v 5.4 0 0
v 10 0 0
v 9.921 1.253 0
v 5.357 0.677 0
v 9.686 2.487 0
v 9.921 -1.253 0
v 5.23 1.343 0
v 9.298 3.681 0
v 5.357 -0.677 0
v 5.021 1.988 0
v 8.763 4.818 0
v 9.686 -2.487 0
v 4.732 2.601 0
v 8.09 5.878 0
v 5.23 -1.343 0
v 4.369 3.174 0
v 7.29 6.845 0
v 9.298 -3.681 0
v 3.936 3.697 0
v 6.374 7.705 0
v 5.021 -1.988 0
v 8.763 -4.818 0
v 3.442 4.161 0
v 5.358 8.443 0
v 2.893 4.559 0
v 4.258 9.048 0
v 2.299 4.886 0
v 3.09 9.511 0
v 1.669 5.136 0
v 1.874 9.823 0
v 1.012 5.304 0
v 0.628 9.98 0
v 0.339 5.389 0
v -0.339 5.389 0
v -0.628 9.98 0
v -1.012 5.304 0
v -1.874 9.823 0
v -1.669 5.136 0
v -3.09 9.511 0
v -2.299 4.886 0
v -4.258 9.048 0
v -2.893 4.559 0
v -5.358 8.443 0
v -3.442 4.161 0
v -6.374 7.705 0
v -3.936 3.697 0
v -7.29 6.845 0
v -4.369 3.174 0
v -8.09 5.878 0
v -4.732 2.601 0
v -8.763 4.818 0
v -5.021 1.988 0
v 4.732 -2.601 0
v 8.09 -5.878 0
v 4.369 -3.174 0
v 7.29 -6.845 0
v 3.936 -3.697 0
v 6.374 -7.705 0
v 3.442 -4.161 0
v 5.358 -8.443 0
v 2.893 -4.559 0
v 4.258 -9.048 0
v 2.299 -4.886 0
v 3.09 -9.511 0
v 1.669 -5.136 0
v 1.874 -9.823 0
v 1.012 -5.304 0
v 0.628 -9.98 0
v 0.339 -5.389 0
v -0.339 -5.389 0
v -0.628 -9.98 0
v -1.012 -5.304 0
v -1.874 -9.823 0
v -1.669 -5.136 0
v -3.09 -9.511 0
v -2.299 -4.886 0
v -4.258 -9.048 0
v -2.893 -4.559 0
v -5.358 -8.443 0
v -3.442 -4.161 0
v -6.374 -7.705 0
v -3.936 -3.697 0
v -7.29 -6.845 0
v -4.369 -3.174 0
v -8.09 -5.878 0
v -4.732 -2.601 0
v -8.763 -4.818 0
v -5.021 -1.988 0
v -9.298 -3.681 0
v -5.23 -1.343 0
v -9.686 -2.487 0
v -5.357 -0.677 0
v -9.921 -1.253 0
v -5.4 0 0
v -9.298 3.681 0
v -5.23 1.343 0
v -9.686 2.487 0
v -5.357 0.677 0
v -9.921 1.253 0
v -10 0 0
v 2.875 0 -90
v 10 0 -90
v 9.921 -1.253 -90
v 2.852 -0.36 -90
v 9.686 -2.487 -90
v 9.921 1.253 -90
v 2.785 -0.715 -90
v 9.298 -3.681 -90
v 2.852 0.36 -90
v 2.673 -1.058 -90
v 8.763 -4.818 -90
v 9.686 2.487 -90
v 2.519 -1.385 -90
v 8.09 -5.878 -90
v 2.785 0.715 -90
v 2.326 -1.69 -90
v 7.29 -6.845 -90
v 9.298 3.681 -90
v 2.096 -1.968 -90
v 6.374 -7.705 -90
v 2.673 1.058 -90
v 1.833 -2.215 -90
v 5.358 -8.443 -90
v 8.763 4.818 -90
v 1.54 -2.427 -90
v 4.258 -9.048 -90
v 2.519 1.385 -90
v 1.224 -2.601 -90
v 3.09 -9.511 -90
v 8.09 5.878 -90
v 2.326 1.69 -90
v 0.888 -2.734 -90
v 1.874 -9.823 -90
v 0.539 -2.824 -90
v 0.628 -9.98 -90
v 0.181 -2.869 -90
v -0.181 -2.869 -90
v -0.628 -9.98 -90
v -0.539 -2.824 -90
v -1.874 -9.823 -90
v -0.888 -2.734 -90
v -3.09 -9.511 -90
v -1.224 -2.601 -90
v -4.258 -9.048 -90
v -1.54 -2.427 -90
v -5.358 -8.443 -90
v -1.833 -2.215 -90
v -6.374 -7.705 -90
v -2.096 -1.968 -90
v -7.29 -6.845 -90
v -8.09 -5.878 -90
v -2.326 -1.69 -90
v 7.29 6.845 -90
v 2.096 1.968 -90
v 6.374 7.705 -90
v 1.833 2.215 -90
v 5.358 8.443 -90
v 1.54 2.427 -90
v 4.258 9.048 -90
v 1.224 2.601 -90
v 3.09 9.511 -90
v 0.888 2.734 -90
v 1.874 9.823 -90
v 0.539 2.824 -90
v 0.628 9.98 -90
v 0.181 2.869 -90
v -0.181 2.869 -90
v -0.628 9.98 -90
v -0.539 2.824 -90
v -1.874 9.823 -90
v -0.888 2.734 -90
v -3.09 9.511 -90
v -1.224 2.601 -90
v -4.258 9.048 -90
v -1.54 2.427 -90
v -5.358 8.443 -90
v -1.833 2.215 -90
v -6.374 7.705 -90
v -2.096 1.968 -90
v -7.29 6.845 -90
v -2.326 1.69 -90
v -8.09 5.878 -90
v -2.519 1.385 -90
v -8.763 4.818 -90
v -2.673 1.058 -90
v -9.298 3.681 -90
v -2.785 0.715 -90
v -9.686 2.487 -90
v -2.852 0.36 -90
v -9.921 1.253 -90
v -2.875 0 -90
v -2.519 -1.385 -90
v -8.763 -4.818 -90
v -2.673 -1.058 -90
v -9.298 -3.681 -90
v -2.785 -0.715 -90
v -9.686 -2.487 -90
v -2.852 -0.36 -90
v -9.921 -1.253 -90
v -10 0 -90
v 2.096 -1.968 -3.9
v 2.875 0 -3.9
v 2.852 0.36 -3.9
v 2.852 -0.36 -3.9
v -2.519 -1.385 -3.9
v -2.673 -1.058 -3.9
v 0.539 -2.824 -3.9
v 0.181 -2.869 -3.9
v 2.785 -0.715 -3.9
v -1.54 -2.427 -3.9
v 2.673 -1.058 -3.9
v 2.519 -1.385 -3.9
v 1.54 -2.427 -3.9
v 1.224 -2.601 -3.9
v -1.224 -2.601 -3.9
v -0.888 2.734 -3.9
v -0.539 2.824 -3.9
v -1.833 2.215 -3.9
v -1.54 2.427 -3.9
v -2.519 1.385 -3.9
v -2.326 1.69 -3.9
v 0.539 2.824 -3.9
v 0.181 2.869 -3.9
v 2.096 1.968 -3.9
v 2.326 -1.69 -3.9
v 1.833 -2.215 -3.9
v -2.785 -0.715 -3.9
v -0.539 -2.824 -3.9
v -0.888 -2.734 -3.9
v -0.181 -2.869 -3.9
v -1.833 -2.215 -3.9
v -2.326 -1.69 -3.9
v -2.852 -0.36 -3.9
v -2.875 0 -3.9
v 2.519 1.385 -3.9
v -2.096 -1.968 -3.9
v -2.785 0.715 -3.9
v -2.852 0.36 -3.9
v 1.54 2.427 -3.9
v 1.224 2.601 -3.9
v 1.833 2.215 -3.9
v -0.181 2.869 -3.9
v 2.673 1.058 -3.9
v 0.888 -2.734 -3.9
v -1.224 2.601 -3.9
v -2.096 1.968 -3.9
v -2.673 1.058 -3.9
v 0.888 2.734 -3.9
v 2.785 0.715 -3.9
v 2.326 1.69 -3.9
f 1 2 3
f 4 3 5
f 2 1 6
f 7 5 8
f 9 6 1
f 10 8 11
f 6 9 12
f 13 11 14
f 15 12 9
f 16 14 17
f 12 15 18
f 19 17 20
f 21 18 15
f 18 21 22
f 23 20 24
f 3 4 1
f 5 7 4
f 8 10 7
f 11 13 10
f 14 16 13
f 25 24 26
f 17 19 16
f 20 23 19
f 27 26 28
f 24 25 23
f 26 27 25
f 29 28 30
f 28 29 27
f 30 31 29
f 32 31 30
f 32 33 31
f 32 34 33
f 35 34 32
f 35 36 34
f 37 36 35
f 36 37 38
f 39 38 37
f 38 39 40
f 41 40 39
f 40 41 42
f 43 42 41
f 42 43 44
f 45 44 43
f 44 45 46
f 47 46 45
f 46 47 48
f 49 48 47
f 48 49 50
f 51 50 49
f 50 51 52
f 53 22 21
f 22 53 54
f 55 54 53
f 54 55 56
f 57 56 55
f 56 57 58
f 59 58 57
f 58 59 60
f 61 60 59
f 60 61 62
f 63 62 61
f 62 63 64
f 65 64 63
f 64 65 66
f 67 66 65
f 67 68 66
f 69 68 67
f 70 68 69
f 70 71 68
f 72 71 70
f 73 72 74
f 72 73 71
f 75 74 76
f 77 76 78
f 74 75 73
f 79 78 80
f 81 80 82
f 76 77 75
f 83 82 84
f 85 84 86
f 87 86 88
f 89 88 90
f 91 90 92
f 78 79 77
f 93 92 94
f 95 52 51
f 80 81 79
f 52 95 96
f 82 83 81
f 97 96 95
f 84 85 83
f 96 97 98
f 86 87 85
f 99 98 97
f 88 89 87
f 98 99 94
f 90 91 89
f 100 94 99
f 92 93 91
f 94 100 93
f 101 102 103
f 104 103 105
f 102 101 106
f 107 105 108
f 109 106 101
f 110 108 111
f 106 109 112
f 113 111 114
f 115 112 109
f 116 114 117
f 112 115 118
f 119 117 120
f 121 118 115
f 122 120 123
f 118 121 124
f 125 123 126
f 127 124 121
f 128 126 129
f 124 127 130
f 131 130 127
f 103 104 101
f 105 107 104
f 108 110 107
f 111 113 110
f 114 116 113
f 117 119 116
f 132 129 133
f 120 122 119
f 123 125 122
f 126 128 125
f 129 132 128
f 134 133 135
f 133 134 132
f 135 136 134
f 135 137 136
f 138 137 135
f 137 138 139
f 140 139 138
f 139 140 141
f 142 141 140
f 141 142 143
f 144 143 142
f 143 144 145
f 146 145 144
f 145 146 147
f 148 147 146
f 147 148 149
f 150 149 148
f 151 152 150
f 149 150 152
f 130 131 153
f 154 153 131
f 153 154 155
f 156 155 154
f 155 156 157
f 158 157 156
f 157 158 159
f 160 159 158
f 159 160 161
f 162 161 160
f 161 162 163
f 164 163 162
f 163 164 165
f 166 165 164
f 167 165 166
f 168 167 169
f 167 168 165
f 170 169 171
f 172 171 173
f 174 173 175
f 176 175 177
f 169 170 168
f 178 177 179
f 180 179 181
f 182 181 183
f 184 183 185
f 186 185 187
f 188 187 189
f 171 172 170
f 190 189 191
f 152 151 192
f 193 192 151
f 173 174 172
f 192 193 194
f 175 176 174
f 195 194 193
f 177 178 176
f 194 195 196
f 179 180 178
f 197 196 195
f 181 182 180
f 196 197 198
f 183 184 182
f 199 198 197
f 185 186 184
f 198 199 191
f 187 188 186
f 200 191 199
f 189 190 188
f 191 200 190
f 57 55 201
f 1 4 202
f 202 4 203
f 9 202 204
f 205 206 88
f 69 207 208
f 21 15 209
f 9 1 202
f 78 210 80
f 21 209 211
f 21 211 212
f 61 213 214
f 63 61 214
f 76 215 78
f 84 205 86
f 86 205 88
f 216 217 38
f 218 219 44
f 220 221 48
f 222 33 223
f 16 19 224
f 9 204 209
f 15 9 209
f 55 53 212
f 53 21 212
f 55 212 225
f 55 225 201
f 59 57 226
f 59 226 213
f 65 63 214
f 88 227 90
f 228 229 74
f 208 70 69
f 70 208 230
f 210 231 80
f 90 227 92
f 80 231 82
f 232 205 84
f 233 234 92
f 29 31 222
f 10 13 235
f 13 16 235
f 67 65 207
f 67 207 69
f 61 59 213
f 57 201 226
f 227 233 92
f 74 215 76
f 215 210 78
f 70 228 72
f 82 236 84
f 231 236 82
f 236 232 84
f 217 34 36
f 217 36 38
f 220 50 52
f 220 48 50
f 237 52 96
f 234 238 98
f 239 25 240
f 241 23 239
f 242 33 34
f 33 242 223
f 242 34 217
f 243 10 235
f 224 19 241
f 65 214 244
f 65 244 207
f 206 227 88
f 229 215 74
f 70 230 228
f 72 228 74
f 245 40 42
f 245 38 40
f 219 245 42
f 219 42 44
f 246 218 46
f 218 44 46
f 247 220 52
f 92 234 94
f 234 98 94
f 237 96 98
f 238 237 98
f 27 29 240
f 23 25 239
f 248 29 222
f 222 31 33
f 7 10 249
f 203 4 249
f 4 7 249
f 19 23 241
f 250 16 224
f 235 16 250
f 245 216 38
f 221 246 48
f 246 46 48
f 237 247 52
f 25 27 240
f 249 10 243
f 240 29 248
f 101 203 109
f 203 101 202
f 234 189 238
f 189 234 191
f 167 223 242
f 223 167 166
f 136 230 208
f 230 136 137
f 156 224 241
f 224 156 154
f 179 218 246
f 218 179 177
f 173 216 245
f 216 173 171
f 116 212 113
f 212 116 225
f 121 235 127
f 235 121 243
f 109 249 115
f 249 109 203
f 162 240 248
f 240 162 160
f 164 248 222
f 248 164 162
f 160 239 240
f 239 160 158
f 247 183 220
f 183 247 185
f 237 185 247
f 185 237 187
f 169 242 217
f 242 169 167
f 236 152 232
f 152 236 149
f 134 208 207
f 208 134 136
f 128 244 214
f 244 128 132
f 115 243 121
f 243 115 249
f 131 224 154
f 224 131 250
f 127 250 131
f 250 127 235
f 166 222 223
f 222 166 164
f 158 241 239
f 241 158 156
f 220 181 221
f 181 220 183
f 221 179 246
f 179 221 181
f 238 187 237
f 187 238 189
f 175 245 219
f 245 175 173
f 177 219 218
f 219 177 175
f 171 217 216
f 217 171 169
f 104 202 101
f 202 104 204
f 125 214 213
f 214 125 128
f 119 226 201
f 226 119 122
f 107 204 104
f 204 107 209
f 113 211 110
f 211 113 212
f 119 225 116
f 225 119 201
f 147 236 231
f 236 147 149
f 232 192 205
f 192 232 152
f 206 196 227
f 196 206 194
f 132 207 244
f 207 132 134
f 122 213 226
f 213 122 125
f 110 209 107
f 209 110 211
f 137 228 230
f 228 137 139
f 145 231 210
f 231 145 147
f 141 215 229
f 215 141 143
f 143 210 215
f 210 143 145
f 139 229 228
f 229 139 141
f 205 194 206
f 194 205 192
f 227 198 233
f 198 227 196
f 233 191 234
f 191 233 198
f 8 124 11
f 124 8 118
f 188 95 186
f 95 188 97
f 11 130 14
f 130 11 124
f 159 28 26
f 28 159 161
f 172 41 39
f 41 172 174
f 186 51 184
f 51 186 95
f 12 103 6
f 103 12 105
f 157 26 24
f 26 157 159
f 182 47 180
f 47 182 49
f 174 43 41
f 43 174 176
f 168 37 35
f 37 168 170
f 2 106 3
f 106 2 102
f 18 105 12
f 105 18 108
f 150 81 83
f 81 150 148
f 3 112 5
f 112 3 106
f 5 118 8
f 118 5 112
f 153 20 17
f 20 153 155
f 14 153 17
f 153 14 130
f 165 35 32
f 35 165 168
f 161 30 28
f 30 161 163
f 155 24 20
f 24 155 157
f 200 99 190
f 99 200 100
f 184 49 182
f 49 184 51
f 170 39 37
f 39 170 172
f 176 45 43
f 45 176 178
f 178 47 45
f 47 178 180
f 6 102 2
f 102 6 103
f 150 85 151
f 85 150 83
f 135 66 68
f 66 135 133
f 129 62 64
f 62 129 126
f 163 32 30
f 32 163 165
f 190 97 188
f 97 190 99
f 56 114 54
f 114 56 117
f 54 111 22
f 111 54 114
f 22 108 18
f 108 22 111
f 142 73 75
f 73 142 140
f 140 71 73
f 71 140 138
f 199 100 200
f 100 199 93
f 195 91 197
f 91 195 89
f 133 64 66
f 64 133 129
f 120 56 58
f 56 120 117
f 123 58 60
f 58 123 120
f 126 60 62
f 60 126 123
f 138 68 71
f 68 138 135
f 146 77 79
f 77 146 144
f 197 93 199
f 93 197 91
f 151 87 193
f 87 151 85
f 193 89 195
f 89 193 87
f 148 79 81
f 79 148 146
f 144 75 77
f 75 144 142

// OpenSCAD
$fn = 50;


difference() {
	union() {
		translate(v = [0, 0, -90.0000000000]) {
			cylinder(h = 90, r = 10.0000000000);
		}
		cylinder(h = 0, r = 20.0000000000);
	}
	union() {
		translate(v = [0, 0, 0]) {
			rotate(a = [0, 0, 0]) {
				difference() {
					union() {
						#translate(v = [0, 0, -90.0000000000]) {
							cylinder(h = 90, r = 2.6000000000);
						}
						#translate(v = [0, 0, -3.9000000000]) {
							cylinder(h = 3.9000000000, r = 10.0000000000, r1 = 2.8750000000, r2 = 5.4000000000);
						}
						#translate(v = [0, 0, -90.0000000000]) {
							cylinder(h = 90, r = 2.8750000000);
						}
						#translate(v = [0, 0, -90.0000000000]) {
							cylinder(h = 90, r = 2.6000000000);
						}
					}
					union();
				}
			}
		}
	}
}
